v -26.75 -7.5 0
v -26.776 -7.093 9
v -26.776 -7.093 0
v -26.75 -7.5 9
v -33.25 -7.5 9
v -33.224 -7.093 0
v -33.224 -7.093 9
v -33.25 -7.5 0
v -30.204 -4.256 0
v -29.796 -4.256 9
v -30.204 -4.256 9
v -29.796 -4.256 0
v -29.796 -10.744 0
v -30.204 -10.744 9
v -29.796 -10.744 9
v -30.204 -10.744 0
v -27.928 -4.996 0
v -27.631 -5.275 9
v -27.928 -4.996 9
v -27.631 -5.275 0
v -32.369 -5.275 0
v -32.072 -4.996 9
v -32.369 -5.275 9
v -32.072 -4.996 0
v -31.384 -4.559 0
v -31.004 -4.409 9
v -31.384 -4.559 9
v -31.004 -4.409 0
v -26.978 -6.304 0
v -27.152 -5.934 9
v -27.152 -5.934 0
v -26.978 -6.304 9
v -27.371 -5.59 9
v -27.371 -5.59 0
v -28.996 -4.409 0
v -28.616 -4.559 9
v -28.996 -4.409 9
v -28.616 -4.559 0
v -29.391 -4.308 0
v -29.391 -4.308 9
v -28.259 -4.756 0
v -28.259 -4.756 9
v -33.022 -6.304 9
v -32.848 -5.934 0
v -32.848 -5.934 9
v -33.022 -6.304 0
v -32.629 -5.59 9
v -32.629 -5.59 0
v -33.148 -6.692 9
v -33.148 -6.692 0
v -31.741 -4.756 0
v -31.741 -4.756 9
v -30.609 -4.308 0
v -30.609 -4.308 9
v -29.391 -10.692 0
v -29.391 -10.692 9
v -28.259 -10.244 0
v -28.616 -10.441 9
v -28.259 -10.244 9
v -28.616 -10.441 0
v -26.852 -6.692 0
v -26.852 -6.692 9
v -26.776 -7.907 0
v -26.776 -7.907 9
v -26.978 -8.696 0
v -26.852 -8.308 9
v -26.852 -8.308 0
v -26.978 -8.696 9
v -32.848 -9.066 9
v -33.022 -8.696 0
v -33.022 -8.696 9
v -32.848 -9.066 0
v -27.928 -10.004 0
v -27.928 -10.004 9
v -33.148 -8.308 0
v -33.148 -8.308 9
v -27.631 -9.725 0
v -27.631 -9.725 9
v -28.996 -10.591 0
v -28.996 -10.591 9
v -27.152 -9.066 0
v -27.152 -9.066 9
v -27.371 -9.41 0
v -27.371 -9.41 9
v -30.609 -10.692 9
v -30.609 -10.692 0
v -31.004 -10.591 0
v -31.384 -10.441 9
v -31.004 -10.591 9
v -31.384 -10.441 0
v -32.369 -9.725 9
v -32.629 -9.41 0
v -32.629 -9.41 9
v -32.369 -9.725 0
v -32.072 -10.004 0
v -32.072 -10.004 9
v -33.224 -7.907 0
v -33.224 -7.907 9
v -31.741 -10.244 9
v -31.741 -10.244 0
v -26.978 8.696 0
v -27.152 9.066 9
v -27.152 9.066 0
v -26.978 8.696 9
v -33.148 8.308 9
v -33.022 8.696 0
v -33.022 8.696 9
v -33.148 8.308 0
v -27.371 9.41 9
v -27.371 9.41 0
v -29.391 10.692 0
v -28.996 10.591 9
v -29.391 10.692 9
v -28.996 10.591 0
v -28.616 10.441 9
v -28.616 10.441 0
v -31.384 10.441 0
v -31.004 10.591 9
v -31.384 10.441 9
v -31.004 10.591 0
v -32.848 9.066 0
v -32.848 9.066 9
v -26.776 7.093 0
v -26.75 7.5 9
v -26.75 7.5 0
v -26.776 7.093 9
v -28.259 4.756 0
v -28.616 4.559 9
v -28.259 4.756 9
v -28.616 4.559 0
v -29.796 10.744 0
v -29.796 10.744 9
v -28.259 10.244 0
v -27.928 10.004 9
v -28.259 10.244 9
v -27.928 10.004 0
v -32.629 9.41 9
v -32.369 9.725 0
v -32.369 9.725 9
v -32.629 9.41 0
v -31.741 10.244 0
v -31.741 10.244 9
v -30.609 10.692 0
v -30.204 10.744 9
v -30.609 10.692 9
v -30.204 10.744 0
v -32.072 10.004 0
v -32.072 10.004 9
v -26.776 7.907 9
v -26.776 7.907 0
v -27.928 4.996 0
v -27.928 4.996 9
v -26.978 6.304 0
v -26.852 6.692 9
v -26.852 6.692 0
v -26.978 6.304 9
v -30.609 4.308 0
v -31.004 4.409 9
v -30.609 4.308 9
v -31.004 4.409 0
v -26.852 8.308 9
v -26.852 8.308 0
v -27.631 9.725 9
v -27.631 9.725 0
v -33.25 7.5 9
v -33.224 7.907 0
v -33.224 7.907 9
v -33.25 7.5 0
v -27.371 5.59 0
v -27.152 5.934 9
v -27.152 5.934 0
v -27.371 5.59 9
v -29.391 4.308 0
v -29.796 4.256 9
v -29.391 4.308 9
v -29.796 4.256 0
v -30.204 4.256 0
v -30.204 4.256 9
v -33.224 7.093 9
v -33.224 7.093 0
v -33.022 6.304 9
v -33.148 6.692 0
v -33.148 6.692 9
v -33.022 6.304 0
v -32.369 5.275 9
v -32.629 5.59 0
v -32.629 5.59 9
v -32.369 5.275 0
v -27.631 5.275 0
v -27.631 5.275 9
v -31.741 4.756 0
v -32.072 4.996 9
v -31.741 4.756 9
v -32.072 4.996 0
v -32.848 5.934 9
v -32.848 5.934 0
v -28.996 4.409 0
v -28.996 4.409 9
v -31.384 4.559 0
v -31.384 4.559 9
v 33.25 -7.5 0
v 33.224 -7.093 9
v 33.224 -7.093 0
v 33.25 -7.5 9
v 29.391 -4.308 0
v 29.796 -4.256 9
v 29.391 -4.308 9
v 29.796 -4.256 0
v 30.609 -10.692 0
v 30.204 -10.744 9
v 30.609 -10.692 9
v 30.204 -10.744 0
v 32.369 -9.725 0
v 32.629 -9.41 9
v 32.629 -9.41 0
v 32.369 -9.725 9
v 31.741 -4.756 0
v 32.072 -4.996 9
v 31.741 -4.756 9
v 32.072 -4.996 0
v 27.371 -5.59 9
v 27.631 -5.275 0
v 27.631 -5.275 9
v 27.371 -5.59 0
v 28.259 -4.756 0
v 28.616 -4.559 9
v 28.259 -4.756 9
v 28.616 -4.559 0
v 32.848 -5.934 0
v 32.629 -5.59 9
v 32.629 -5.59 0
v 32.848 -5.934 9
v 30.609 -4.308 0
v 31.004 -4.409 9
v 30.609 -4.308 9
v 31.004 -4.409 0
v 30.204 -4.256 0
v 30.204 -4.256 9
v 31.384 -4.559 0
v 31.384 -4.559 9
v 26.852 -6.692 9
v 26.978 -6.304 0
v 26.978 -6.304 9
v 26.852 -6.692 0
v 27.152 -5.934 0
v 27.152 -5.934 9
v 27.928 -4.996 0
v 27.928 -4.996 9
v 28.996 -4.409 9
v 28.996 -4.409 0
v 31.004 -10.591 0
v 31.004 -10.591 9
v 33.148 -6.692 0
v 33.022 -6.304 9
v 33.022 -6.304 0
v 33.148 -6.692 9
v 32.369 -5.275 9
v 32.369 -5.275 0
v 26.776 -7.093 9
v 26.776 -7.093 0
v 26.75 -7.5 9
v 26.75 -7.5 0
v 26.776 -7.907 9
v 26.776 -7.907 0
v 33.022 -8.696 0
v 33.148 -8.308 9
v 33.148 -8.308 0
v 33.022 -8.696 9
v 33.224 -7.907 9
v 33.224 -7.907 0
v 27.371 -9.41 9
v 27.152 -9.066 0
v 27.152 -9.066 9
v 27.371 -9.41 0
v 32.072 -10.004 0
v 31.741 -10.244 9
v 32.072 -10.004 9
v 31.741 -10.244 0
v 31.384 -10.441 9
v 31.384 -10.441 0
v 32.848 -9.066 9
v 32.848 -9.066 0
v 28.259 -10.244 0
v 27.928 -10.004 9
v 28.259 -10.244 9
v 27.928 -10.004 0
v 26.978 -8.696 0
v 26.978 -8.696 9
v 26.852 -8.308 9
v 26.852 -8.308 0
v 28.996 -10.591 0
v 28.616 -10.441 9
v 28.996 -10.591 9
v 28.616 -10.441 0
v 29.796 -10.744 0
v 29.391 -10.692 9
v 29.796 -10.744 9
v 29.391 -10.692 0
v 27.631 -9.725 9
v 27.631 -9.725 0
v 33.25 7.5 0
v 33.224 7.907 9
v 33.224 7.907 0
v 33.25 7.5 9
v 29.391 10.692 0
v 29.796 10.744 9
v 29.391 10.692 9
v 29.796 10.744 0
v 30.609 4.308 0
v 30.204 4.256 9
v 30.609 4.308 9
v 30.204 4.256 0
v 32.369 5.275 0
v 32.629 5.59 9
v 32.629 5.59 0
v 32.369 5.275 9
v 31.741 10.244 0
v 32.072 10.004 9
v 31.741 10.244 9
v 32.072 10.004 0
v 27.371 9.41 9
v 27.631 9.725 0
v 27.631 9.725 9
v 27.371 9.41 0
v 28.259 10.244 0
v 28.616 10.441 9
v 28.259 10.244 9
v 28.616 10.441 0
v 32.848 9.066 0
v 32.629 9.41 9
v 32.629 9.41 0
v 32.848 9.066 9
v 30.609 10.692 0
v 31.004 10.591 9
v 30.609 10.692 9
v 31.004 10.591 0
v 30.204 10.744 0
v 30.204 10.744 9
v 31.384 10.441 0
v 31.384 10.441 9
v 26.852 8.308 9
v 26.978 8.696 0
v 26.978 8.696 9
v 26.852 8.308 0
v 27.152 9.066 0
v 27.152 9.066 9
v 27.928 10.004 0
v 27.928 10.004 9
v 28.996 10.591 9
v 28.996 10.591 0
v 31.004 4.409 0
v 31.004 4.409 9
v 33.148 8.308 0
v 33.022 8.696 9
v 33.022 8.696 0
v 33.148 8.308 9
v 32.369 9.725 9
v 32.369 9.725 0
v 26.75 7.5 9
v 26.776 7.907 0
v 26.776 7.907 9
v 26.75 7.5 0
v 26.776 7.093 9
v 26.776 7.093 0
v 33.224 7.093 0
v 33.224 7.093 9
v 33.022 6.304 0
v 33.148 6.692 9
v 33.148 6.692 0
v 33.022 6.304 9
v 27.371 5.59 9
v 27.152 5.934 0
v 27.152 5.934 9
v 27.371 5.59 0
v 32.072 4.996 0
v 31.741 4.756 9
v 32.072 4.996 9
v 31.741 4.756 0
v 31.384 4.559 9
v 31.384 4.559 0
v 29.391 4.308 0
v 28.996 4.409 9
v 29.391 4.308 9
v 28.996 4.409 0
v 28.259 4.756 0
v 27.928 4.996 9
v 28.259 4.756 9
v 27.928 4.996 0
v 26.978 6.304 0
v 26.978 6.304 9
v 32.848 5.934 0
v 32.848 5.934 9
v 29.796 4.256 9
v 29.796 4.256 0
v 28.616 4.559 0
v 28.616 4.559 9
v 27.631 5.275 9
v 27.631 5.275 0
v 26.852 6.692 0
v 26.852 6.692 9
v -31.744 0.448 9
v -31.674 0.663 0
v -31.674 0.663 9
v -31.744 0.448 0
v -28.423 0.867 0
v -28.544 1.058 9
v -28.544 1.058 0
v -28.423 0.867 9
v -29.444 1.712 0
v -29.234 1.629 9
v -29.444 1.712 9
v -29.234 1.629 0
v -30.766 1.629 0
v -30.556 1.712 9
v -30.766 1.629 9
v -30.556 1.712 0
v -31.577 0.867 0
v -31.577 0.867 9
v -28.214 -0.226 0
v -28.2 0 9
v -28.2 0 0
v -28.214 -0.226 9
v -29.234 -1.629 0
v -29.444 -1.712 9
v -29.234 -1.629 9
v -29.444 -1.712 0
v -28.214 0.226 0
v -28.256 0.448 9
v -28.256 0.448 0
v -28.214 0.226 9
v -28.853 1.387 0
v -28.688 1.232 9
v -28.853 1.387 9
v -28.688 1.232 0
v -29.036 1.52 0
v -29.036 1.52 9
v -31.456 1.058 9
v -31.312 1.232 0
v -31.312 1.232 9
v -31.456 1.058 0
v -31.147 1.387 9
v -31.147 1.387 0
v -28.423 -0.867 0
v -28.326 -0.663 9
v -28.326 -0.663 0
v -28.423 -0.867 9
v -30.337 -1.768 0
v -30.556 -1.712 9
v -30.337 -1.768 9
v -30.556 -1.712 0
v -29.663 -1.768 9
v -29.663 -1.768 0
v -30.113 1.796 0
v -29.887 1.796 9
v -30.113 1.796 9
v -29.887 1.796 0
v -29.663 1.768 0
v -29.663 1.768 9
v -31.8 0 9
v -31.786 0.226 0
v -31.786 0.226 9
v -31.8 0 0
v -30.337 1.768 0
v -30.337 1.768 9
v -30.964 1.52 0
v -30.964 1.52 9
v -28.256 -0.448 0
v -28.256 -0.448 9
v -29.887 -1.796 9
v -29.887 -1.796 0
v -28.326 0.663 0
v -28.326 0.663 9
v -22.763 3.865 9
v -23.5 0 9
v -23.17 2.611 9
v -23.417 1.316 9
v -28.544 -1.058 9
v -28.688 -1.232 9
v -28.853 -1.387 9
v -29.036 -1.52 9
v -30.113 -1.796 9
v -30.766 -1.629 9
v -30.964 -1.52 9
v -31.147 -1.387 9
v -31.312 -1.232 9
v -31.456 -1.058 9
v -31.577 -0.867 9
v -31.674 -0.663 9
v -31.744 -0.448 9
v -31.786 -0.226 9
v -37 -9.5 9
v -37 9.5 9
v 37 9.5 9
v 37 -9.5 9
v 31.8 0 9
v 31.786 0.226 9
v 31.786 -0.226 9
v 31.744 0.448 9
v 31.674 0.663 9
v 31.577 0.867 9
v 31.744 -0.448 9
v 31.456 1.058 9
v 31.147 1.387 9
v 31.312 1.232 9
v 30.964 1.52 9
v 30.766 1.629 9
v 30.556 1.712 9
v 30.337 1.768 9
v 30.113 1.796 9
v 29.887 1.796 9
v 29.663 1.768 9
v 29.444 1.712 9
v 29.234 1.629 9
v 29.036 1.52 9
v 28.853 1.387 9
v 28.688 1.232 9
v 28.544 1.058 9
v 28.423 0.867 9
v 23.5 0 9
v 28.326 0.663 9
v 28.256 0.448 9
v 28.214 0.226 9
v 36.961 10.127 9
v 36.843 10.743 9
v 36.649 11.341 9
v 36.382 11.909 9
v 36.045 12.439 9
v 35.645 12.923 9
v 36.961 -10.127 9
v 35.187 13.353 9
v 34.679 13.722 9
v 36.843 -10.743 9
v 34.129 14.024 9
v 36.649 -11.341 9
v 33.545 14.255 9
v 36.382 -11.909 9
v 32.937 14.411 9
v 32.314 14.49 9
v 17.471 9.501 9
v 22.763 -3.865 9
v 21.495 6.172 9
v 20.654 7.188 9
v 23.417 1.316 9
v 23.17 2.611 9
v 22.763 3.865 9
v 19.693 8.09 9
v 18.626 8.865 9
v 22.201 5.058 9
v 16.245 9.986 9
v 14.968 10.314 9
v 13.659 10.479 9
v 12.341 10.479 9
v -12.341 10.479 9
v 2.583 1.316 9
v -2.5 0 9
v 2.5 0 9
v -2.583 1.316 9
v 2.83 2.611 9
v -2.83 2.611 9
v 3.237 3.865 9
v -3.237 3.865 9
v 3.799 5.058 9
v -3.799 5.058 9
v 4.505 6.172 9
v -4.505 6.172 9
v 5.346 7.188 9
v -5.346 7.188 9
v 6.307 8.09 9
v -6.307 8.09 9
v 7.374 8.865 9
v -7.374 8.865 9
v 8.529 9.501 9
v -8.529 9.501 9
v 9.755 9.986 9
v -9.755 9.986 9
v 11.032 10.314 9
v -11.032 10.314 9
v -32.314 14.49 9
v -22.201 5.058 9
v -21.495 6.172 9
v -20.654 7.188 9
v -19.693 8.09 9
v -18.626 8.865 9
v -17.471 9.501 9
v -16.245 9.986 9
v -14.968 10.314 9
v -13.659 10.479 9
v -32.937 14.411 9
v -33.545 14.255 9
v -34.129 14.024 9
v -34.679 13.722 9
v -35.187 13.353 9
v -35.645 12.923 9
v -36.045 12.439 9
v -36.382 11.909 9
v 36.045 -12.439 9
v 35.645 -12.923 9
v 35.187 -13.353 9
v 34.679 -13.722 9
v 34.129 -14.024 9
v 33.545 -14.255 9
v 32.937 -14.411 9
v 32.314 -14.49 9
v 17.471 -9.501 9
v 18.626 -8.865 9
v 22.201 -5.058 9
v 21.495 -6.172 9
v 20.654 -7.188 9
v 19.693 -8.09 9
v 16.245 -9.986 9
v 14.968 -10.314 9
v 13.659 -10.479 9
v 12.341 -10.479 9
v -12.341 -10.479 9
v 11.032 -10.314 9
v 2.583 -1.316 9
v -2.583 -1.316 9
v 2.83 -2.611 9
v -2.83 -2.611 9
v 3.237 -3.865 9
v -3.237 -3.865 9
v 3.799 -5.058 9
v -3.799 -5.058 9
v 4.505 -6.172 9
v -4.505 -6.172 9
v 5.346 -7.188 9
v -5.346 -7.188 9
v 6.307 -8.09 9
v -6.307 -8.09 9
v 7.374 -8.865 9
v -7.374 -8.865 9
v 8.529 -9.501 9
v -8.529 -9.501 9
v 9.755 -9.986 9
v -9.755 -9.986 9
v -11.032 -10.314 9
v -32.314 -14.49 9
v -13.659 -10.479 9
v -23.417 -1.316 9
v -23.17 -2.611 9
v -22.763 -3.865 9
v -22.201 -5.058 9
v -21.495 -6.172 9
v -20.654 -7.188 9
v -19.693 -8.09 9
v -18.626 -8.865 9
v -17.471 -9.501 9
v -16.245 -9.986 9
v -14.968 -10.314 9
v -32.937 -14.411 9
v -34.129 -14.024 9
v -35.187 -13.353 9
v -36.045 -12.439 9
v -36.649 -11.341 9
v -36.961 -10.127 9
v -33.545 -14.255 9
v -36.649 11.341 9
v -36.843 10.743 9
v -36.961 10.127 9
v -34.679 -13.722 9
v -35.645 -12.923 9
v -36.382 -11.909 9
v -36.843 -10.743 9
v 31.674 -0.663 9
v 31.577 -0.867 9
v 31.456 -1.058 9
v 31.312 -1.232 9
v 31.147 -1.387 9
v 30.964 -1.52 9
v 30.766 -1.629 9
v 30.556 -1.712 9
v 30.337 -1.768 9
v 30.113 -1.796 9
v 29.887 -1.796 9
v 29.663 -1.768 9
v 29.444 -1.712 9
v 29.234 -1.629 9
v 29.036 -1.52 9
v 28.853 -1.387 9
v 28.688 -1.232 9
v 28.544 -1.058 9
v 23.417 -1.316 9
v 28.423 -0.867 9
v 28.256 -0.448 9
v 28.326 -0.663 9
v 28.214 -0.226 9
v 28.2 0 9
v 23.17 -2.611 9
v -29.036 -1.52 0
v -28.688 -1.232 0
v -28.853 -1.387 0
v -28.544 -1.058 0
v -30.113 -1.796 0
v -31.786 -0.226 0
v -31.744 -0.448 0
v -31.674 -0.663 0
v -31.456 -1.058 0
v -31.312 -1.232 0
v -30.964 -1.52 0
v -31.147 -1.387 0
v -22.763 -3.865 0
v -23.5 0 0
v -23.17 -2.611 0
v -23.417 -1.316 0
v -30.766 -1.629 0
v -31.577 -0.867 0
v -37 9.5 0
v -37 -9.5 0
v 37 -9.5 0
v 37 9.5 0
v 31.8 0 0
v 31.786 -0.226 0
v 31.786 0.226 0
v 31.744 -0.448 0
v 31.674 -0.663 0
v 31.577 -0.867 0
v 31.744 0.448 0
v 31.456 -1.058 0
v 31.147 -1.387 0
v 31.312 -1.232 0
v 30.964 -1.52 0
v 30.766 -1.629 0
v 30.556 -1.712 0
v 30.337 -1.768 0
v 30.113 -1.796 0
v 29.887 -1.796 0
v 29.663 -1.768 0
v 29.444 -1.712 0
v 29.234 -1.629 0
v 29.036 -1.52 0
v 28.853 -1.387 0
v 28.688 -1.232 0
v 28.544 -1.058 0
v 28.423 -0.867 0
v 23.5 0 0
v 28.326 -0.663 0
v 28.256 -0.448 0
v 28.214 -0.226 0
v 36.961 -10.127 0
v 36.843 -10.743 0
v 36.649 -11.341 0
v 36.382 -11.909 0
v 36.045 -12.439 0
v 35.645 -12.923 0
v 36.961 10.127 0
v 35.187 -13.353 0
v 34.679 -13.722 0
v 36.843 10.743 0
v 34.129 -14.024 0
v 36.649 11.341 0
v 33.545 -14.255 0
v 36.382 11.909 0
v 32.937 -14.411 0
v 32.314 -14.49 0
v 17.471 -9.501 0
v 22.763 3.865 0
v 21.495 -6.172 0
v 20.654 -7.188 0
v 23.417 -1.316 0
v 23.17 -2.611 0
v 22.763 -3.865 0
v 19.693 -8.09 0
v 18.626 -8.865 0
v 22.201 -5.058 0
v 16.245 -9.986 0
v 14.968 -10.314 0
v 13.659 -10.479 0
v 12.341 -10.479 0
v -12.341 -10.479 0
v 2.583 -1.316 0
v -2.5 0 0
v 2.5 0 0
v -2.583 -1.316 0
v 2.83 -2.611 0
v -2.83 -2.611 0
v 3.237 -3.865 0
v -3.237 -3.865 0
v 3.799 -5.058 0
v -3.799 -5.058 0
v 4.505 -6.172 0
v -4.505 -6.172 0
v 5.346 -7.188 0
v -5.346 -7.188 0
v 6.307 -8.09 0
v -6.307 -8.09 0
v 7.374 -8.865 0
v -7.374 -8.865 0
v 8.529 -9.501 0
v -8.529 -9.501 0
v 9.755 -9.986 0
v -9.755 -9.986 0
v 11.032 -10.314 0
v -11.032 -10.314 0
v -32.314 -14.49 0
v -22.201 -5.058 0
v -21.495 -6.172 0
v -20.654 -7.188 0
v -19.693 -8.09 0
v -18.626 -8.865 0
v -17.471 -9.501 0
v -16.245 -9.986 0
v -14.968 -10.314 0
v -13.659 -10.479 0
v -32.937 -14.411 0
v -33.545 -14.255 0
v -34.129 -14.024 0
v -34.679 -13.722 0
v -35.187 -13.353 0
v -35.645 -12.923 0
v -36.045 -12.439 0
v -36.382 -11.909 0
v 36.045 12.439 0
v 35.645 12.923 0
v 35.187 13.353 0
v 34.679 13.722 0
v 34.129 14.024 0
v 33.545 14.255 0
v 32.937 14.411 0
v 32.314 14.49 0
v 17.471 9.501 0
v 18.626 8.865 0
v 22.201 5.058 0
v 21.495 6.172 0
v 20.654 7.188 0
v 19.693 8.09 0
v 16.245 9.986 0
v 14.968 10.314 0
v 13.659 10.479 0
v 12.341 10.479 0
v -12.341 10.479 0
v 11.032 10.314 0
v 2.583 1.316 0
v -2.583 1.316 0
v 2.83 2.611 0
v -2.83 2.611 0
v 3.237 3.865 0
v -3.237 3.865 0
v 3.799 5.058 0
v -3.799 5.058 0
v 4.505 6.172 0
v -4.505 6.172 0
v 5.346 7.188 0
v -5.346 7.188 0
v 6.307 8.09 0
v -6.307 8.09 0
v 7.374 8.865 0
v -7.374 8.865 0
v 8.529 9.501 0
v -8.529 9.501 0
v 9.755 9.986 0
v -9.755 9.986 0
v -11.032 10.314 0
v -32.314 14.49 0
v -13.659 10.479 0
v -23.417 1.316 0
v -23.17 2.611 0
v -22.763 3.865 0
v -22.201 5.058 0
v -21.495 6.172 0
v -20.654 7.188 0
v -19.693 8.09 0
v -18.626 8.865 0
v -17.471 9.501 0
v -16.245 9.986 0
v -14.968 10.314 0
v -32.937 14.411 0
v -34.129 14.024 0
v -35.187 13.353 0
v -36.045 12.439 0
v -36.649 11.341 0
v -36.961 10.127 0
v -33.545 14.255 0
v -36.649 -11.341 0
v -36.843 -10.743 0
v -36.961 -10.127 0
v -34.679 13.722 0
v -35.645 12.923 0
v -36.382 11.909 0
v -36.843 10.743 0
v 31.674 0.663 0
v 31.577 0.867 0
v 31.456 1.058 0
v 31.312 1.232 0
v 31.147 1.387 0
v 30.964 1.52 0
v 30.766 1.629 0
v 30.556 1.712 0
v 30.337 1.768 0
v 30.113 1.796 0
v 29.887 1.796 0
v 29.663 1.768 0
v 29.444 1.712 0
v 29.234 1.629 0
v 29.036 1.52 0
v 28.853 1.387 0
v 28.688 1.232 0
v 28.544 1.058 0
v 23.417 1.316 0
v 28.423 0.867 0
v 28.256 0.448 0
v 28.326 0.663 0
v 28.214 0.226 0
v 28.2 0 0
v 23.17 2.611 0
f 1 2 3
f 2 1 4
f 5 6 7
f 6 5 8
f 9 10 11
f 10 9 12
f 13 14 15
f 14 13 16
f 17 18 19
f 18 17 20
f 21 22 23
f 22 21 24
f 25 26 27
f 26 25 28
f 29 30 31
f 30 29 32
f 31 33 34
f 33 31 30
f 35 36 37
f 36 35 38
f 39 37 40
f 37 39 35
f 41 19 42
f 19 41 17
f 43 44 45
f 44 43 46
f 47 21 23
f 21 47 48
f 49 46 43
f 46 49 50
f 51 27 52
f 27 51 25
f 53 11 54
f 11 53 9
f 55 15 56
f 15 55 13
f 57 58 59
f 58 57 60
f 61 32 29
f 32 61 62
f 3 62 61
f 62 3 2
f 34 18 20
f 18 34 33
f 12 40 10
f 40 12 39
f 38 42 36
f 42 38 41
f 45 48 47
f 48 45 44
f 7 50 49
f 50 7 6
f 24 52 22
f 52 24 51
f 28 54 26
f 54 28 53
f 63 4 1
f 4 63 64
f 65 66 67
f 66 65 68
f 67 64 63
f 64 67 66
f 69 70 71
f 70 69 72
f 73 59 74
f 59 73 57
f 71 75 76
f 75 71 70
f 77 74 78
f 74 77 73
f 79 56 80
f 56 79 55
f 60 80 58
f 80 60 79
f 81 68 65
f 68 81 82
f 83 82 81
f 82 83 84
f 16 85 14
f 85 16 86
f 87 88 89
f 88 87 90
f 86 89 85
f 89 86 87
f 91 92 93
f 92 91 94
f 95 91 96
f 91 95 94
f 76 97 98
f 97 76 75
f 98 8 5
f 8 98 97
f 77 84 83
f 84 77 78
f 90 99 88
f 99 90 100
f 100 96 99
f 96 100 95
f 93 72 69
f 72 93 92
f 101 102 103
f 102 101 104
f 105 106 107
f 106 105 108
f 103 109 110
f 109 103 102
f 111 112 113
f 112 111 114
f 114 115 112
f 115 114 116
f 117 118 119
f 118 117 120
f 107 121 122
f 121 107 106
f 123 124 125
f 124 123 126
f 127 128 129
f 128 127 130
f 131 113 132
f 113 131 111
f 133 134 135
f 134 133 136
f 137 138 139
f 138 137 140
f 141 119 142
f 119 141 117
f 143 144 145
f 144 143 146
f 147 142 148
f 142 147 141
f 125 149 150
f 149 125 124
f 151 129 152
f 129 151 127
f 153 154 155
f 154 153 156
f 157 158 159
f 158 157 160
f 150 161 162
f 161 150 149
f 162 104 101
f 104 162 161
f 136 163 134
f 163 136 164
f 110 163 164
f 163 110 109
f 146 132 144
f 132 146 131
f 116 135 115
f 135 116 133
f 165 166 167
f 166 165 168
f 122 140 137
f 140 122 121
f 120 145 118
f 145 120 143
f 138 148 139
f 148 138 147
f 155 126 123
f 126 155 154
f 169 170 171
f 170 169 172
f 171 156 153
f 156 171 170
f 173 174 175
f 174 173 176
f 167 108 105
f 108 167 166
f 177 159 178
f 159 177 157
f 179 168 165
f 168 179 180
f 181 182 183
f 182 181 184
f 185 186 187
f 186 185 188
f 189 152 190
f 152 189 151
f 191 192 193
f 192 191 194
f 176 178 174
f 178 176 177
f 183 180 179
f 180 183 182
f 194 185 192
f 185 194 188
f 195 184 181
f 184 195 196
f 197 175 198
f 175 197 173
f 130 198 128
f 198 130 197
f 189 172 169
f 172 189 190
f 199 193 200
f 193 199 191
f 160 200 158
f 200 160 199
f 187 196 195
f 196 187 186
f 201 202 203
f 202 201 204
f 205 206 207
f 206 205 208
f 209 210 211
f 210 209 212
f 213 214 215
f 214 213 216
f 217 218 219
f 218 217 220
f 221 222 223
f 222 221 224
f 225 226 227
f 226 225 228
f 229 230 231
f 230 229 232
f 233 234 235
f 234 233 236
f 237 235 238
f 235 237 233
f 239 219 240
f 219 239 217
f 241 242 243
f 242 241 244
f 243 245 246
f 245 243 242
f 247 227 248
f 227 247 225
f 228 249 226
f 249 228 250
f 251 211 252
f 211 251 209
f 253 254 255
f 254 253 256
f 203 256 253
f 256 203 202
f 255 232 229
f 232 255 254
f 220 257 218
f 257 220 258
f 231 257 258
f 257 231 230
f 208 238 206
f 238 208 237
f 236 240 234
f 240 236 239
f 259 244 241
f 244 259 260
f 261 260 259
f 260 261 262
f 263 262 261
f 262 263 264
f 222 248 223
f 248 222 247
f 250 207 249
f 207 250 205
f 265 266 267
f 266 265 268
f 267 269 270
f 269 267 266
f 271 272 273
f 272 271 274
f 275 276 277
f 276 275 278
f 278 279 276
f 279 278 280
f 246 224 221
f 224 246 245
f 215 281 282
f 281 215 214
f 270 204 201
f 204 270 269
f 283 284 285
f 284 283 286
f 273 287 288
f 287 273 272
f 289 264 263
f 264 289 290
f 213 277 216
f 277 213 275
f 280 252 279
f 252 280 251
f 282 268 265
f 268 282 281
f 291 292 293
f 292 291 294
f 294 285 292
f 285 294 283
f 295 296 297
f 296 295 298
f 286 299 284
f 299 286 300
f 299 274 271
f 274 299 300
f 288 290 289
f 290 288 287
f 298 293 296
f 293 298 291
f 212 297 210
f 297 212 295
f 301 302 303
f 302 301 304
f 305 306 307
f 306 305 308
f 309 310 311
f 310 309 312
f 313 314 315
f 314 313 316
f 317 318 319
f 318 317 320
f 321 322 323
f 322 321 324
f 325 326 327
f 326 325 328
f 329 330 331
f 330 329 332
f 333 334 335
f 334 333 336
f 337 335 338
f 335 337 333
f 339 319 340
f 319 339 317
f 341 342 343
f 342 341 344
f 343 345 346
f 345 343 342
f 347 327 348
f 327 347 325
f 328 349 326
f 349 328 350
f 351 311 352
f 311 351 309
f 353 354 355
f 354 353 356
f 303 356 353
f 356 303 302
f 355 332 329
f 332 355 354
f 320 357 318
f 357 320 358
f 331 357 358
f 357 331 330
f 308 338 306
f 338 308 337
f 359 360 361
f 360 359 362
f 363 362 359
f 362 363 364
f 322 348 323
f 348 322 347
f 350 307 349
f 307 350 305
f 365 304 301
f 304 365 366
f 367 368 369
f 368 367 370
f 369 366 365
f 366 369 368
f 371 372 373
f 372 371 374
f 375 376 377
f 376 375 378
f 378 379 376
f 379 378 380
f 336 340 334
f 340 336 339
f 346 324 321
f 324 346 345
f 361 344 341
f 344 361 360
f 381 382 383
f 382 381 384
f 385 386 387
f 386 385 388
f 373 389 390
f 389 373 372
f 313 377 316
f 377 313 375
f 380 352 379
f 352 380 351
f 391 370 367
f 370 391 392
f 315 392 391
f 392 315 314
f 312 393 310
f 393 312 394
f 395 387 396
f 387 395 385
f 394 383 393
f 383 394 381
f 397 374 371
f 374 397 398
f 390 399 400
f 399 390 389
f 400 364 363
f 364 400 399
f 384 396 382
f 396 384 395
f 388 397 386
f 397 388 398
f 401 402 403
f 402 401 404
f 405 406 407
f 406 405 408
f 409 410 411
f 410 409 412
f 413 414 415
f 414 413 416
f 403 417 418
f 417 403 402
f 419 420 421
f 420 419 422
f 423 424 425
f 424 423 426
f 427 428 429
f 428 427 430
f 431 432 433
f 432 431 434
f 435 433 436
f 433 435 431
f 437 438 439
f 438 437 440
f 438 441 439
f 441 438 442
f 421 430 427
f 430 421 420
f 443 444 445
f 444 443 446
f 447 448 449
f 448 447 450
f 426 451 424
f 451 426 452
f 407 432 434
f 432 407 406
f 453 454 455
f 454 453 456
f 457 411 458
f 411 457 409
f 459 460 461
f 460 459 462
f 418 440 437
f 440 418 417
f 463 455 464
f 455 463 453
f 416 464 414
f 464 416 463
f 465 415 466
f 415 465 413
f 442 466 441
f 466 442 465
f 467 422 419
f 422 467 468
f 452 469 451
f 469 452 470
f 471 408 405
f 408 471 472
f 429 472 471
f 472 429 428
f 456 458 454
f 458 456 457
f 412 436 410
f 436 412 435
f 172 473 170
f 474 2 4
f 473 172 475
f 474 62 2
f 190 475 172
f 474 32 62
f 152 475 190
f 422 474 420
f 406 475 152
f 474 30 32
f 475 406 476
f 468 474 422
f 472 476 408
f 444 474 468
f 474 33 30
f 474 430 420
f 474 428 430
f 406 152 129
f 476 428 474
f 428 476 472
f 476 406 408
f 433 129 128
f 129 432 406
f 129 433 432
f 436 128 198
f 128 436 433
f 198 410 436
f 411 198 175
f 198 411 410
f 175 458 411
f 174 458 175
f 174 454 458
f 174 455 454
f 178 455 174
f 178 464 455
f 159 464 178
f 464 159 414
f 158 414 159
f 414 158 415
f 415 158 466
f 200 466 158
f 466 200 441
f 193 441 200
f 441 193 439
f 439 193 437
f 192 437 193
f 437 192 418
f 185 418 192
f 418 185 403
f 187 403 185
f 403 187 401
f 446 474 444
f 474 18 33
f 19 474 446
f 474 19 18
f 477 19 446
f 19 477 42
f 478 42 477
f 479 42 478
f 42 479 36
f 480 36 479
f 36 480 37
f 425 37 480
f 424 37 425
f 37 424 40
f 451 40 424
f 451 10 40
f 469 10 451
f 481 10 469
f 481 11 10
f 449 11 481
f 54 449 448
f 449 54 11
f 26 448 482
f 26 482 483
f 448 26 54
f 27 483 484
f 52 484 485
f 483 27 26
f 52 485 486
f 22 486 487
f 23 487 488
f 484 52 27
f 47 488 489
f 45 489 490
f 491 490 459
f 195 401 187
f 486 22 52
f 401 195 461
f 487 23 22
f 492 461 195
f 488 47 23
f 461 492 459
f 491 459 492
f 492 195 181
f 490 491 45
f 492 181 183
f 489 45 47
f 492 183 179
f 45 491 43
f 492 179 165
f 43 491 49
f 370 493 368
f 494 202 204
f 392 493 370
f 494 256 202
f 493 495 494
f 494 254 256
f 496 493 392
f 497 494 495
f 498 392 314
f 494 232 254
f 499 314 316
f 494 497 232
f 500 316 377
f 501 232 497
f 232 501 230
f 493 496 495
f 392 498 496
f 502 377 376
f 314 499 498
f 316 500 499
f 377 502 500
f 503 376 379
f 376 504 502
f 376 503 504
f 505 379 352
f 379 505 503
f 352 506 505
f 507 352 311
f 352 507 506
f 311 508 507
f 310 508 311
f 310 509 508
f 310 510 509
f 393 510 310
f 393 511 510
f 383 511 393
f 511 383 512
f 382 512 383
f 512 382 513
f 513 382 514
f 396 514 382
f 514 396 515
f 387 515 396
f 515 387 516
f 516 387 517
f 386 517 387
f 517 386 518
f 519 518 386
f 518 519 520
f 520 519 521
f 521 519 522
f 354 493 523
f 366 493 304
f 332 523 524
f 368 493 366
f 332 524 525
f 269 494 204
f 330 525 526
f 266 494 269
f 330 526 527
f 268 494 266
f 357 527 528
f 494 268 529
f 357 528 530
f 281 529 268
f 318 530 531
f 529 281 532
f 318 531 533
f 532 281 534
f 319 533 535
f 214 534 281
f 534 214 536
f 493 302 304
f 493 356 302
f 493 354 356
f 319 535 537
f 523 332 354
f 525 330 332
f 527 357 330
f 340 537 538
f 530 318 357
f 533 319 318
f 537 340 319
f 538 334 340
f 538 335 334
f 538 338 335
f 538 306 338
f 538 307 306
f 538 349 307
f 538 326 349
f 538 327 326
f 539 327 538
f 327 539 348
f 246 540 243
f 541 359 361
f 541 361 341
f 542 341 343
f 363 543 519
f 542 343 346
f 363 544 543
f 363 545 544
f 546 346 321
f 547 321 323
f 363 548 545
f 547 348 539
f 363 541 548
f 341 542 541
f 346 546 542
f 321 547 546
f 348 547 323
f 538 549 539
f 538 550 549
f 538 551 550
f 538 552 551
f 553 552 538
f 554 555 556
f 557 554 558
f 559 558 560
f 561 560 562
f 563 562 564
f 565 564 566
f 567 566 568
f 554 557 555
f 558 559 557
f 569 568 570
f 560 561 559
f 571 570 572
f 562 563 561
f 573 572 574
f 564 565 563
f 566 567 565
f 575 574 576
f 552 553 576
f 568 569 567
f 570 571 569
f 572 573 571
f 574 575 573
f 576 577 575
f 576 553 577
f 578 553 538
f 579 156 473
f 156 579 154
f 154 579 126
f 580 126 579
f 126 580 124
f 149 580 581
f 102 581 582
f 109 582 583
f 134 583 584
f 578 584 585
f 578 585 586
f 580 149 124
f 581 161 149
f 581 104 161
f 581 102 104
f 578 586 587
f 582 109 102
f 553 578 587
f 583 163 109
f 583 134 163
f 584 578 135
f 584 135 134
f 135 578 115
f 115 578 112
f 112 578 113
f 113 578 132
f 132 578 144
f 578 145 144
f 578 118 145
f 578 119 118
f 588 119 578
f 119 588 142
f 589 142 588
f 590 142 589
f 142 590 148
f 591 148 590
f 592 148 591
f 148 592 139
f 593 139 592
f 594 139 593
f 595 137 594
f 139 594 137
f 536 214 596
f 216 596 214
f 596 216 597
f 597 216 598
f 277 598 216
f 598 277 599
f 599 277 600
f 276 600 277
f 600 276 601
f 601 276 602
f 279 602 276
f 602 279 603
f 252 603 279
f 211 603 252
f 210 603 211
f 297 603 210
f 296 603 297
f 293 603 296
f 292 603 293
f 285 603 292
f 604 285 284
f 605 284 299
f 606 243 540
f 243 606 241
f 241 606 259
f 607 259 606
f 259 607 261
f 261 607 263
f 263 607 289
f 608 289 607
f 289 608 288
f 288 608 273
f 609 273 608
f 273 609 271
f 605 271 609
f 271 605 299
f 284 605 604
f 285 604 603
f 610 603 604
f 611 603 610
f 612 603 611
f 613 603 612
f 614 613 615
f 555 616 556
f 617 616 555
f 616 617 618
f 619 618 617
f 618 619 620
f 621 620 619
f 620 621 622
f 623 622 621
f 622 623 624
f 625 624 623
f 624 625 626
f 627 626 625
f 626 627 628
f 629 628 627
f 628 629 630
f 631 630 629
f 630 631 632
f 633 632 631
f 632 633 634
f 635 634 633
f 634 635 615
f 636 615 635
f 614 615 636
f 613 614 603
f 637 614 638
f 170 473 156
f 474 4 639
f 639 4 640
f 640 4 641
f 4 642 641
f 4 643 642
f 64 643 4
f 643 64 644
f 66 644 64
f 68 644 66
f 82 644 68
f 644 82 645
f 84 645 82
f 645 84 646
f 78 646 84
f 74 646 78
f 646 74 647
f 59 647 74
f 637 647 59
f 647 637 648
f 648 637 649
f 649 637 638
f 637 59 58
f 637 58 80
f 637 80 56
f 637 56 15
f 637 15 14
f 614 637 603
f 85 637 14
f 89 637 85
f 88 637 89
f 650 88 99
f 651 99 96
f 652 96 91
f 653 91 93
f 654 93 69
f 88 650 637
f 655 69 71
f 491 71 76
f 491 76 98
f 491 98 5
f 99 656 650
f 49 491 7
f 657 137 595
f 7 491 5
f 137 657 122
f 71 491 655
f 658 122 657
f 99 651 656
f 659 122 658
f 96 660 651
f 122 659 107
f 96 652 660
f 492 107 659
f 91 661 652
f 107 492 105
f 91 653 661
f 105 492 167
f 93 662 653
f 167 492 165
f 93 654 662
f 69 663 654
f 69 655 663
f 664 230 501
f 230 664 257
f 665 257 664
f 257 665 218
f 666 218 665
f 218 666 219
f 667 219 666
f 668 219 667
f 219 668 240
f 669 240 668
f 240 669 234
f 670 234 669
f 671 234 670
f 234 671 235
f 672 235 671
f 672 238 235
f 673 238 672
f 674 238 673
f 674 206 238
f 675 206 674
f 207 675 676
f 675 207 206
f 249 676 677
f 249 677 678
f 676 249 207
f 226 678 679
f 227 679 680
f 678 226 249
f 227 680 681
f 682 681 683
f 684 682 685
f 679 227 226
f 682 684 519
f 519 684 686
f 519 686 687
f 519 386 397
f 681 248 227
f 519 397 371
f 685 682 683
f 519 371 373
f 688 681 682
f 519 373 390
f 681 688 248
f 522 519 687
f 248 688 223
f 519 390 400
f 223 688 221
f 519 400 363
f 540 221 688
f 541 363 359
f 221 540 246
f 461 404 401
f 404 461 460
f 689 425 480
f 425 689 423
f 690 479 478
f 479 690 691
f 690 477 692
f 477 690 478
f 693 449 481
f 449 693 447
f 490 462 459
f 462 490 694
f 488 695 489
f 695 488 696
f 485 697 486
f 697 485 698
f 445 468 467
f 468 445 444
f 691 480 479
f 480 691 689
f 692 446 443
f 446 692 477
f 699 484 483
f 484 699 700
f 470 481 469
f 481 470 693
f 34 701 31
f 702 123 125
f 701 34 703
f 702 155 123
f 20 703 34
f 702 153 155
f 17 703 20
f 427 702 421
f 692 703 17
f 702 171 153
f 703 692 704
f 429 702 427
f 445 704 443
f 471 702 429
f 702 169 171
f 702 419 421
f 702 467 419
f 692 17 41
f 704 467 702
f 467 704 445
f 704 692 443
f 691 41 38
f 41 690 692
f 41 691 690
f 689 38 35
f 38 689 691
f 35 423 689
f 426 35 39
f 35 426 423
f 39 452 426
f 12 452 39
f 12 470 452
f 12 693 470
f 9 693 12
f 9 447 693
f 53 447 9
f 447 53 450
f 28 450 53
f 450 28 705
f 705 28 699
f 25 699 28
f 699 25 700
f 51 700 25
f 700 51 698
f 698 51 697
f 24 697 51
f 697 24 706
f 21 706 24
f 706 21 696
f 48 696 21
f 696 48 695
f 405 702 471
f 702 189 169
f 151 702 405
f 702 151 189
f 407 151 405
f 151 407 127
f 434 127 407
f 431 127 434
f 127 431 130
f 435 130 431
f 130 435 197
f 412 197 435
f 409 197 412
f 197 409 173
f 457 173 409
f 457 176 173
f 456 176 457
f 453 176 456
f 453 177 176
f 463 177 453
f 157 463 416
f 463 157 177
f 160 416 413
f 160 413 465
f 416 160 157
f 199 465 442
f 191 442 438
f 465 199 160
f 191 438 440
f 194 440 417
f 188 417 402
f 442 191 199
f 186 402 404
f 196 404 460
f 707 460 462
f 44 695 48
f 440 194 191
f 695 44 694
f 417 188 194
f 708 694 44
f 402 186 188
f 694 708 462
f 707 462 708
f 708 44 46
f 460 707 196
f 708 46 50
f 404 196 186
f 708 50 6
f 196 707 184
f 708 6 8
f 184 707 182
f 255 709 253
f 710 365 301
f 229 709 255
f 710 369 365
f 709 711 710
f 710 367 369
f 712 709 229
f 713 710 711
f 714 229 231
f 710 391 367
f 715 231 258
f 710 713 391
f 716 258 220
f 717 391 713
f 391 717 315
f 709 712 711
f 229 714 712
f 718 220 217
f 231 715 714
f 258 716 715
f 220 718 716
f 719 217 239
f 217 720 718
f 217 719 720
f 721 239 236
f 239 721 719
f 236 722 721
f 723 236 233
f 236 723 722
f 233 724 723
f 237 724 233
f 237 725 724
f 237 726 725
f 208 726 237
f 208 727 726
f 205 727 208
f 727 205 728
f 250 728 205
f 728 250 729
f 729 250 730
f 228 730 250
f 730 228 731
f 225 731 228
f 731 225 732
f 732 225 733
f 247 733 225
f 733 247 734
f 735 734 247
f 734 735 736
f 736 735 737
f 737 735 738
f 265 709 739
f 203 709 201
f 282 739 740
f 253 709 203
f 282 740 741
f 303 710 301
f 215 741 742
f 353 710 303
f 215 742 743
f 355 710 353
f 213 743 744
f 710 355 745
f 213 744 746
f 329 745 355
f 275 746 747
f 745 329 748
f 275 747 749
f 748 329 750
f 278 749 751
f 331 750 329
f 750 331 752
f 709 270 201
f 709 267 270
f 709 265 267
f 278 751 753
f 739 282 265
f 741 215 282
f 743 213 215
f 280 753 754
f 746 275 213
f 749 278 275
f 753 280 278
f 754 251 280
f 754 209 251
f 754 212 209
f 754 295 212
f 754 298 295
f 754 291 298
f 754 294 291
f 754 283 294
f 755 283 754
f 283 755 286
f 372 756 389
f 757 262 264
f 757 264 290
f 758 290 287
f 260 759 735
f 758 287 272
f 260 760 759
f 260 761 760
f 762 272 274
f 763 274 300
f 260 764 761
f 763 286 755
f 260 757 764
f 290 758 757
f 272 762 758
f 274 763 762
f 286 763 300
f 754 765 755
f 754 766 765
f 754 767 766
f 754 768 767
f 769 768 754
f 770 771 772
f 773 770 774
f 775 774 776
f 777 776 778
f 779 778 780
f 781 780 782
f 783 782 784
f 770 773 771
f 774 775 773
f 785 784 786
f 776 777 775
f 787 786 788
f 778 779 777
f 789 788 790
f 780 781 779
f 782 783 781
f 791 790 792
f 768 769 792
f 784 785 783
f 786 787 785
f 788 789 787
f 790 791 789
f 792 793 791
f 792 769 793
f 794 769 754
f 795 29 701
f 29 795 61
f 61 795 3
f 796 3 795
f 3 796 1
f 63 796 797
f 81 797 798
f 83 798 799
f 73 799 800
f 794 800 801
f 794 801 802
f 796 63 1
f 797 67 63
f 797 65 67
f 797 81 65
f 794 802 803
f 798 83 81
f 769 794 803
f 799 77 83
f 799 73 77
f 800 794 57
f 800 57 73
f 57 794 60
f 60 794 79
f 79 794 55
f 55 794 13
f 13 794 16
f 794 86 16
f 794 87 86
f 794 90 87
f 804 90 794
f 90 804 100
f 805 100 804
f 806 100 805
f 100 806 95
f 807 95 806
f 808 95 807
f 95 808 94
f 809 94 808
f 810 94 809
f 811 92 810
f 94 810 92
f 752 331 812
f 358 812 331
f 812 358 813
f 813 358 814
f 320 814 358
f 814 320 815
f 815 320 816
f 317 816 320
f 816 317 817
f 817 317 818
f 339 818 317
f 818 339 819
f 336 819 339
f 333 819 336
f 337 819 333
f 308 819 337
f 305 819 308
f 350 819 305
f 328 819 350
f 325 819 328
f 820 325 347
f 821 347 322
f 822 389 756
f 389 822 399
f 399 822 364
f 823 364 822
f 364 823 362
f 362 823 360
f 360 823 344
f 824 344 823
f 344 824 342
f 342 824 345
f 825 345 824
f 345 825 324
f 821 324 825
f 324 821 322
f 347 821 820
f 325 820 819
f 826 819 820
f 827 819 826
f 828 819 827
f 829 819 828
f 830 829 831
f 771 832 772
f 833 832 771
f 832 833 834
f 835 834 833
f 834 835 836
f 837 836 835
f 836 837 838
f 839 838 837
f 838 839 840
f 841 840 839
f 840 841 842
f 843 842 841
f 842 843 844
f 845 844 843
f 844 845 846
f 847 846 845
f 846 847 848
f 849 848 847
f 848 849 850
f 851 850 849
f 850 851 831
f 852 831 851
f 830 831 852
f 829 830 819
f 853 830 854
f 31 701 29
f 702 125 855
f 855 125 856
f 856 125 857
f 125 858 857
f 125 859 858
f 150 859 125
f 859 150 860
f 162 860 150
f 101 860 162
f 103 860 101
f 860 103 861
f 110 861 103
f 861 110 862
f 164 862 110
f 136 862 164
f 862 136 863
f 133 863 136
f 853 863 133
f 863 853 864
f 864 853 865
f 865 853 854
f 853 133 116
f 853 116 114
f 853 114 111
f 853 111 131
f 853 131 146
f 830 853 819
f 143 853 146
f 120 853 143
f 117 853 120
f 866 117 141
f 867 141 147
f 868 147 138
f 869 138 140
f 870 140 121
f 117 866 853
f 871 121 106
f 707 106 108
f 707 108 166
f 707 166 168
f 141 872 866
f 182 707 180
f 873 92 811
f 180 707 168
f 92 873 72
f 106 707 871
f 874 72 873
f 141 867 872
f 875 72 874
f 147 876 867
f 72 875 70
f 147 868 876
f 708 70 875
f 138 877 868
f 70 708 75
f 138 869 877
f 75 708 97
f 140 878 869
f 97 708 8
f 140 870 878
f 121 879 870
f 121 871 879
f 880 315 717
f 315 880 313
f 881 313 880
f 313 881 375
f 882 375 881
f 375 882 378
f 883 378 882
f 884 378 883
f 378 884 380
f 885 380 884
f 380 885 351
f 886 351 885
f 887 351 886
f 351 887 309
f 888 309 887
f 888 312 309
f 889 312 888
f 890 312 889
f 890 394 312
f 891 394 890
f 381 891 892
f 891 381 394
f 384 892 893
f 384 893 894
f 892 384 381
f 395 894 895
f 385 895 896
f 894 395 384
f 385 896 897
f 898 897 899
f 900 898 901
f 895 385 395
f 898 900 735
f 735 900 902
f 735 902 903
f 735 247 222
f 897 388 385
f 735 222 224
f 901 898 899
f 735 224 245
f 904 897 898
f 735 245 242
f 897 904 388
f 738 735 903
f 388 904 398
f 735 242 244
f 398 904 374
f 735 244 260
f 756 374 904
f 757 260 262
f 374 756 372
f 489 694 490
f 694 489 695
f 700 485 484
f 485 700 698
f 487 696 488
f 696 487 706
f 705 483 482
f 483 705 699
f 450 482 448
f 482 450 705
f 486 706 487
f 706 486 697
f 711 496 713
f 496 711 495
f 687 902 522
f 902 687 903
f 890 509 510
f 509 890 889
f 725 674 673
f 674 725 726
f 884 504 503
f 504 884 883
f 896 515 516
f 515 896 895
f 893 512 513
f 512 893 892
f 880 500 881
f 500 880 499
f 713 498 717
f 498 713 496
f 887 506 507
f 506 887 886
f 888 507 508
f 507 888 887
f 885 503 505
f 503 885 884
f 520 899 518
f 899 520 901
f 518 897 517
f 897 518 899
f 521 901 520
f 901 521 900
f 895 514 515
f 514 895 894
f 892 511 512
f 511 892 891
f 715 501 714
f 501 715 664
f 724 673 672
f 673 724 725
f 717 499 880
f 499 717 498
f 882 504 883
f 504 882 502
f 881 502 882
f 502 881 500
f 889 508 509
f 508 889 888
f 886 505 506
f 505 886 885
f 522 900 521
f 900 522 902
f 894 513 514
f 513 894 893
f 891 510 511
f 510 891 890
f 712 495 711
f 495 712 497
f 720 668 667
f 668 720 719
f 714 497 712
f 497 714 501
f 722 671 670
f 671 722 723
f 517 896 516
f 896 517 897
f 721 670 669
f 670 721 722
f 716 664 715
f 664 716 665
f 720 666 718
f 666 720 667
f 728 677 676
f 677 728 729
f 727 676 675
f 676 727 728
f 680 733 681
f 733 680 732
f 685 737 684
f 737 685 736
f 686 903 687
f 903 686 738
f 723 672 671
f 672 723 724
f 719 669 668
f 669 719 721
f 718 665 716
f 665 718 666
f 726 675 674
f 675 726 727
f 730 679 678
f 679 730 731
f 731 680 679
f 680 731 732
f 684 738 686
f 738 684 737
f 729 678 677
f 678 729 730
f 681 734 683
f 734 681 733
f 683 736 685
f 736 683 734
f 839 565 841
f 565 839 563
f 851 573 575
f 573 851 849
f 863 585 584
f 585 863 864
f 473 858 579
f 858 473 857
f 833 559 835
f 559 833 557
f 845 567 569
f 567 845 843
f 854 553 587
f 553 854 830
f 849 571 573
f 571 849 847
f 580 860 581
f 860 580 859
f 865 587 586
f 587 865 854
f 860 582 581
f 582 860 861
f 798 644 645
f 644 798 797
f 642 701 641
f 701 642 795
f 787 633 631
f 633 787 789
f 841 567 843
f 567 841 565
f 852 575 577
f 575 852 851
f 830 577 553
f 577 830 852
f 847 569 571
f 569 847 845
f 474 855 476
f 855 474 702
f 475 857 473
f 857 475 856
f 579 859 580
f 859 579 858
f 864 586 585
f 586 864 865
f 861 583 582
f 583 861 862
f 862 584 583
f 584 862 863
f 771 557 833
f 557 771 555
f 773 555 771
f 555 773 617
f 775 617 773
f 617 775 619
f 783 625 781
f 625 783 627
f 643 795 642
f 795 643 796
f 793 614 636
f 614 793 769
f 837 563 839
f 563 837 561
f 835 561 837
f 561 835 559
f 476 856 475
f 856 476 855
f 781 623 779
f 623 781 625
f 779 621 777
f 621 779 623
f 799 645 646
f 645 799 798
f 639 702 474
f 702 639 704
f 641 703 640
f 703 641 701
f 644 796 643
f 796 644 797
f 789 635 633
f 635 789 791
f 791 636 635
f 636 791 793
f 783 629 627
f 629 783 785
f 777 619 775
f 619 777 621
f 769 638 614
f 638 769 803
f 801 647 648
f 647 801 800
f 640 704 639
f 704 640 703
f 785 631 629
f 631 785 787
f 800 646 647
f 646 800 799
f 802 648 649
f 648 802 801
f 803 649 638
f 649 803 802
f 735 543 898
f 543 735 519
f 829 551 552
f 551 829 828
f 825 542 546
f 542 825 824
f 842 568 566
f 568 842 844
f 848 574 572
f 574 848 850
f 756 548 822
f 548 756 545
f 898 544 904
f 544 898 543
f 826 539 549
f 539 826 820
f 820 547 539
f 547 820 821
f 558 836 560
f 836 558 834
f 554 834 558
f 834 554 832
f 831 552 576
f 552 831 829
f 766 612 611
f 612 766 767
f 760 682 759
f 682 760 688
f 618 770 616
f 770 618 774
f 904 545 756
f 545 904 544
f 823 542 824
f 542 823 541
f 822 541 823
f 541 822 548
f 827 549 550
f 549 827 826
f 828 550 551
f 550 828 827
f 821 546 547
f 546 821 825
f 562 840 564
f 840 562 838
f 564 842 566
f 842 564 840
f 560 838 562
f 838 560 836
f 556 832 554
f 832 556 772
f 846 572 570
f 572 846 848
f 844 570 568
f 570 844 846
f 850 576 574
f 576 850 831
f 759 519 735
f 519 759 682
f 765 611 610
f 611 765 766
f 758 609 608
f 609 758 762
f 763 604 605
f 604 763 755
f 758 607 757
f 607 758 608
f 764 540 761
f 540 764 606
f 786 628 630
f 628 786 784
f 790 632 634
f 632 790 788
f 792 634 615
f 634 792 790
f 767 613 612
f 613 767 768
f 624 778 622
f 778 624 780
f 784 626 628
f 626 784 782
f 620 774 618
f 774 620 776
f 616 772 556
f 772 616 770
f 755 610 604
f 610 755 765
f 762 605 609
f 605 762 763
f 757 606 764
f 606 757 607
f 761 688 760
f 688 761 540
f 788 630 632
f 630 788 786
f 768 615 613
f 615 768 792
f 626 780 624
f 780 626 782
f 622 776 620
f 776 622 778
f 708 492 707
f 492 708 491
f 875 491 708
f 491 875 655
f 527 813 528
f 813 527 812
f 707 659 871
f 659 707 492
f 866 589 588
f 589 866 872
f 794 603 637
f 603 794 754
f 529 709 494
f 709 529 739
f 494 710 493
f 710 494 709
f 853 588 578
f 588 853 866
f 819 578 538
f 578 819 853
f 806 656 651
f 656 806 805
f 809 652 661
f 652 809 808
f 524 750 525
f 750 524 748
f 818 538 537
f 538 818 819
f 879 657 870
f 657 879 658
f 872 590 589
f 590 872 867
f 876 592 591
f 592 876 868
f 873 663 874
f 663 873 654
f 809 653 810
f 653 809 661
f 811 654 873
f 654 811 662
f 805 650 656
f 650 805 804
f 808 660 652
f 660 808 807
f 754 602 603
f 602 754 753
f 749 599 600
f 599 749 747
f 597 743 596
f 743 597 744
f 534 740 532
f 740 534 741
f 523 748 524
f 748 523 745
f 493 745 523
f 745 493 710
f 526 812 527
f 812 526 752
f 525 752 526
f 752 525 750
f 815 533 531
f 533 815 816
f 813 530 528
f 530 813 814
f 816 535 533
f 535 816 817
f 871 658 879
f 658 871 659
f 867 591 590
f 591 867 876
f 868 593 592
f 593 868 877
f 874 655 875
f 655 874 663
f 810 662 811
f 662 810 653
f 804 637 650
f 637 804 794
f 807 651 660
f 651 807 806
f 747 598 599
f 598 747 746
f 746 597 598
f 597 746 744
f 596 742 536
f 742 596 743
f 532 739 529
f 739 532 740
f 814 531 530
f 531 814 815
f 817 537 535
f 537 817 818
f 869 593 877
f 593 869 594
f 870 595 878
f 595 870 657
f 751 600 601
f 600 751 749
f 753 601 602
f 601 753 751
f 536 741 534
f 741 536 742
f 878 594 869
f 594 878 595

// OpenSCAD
$fn = 50;


difference() {
	union() {
		hull() {
			translate(v = [-32.0000000000, 9.5000000000, 0]) {
				cylinder(h = 9, r = 5);
			}
			translate(v = [32.0000000000, 9.5000000000, 0]) {
				cylinder(h = 9, r = 5);
			}
			translate(v = [-32.0000000000, -9.5000000000, 0]) {
				cylinder(h = 9, r = 5);
			}
			translate(v = [32.0000000000, -9.5000000000, 0]) {
				cylinder(h = 9, r = 5);
			}
		}
	}
	union() {
		#translate(v = [-30.0000000000, -7.5000000000, 0]) {
			cylinder(h = 9, r = 3.2500000000);
		}
		#translate(v = [-30.0000000000, 7.5000000000, 0]) {
			cylinder(h = 9, r = 3.2500000000);
		}
		#translate(v = [30.0000000000, -7.5000000000, 0]) {
			cylinder(h = 9, r = 3.2500000000);
		}
		#translate(v = [30.0000000000, 7.5000000000, 0]) {
			cylinder(h = 9, r = 3.2500000000);
		}
		#translate(v = [-30.0000000000, -7.5000000000, -100.0000000000]) {
			cylinder(h = 200, r = 3.2500000000);
		}
		#translate(v = [-30.0000000000, 7.5000000000, -100.0000000000]) {
			cylinder(h = 200, r = 3.2500000000);
		}
		#translate(v = [30.0000000000, -7.5000000000, -100.0000000000]) {
			cylinder(h = 200, r = 3.2500000000);
		}
		#translate(v = [30.0000000000, 7.5000000000, -100.0000000000]) {
			cylinder(h = 200, r = 3.2500000000);
		}
		#translate(v = [-30.0000000000, -7.5000000000, 0]) {
			cylinder(h = 9, r = 1.8000000000);
		}
		#translate(v = [-30.0000000000, 0.0000000000, 0]) {
			cylinder(h = 9, r = 1.8000000000);
		}
		#translate(v = [-30.0000000000, 7.5000000000, 0]) {
			cylinder(h = 9, r = 1.8000000000);
		}
		#translate(v = [30.0000000000, -7.5000000000, 0]) {
			cylinder(h = 9, r = 1.8000000000);
		}
		#translate(v = [30.0000000000, 0.0000000000, 0]) {
			cylinder(h = 9, r = 1.8000000000);
		}
		#translate(v = [30.0000000000, 7.5000000000, 0]) {
			cylinder(h = 9, r = 1.8000000000);
		}
		#translate(v = [-30.0000000000, -7.5000000000, 0]) {
			cylinder(h = 9, r = 1.8000000000);
		}
		#translate(v = [-30.0000000000, 0.0000000000, 0]) {
			cylinder(h = 9, r = 1.8000000000);
		}
		#translate(v = [-30.0000000000, 7.5000000000, 0]) {
			cylinder(h = 9, r = 1.8000000000);
		}
		#translate(v = [30.0000000000, -7.5000000000, 0]) {
			cylinder(h = 9, r = 1.8000000000);
		}
		#translate(v = [30.0000000000, 0.0000000000, 0]) {
			cylinder(h = 9, r = 1.8000000000);
		}
		#translate(v = [30.0000000000, 7.5000000000, 0]) {
			cylinder(h = 9, r = 1.8000000000);
		}
		#translate(v = [-30.0000000000, -7.5000000000, 0]) {
			cylinder(h = 9, r = 1.8000000000);
		}
		#translate(v = [-30.0000000000, 0.0000000000, 0]) {
			cylinder(h = 9, r = 1.8000000000);
		}
		#translate(v = [-30.0000000000, 7.5000000000, 0]) {
			cylinder(h = 9, r = 1.8000000000);
		}
		#translate(v = [30.0000000000, -7.5000000000, 0]) {
			cylinder(h = 9, r = 1.8000000000);
		}
		#translate(v = [30.0000000000, 0.0000000000, 0]) {
			cylinder(h = 9, r = 1.8000000000);
		}
		#translate(v = [30.0000000000, 7.5000000000, 0]) {
			cylinder(h = 9, r = 1.8000000000);
		}
		#translate(v = [-13.0000000000, 0, 0]) {
			cylinder(h = 9, r = 10.5000000000);
		}
		#translate(v = [13.0000000000, 0, 0]) {
			cylinder(h = 9, r = 10.5000000000);
		}
	}
}
